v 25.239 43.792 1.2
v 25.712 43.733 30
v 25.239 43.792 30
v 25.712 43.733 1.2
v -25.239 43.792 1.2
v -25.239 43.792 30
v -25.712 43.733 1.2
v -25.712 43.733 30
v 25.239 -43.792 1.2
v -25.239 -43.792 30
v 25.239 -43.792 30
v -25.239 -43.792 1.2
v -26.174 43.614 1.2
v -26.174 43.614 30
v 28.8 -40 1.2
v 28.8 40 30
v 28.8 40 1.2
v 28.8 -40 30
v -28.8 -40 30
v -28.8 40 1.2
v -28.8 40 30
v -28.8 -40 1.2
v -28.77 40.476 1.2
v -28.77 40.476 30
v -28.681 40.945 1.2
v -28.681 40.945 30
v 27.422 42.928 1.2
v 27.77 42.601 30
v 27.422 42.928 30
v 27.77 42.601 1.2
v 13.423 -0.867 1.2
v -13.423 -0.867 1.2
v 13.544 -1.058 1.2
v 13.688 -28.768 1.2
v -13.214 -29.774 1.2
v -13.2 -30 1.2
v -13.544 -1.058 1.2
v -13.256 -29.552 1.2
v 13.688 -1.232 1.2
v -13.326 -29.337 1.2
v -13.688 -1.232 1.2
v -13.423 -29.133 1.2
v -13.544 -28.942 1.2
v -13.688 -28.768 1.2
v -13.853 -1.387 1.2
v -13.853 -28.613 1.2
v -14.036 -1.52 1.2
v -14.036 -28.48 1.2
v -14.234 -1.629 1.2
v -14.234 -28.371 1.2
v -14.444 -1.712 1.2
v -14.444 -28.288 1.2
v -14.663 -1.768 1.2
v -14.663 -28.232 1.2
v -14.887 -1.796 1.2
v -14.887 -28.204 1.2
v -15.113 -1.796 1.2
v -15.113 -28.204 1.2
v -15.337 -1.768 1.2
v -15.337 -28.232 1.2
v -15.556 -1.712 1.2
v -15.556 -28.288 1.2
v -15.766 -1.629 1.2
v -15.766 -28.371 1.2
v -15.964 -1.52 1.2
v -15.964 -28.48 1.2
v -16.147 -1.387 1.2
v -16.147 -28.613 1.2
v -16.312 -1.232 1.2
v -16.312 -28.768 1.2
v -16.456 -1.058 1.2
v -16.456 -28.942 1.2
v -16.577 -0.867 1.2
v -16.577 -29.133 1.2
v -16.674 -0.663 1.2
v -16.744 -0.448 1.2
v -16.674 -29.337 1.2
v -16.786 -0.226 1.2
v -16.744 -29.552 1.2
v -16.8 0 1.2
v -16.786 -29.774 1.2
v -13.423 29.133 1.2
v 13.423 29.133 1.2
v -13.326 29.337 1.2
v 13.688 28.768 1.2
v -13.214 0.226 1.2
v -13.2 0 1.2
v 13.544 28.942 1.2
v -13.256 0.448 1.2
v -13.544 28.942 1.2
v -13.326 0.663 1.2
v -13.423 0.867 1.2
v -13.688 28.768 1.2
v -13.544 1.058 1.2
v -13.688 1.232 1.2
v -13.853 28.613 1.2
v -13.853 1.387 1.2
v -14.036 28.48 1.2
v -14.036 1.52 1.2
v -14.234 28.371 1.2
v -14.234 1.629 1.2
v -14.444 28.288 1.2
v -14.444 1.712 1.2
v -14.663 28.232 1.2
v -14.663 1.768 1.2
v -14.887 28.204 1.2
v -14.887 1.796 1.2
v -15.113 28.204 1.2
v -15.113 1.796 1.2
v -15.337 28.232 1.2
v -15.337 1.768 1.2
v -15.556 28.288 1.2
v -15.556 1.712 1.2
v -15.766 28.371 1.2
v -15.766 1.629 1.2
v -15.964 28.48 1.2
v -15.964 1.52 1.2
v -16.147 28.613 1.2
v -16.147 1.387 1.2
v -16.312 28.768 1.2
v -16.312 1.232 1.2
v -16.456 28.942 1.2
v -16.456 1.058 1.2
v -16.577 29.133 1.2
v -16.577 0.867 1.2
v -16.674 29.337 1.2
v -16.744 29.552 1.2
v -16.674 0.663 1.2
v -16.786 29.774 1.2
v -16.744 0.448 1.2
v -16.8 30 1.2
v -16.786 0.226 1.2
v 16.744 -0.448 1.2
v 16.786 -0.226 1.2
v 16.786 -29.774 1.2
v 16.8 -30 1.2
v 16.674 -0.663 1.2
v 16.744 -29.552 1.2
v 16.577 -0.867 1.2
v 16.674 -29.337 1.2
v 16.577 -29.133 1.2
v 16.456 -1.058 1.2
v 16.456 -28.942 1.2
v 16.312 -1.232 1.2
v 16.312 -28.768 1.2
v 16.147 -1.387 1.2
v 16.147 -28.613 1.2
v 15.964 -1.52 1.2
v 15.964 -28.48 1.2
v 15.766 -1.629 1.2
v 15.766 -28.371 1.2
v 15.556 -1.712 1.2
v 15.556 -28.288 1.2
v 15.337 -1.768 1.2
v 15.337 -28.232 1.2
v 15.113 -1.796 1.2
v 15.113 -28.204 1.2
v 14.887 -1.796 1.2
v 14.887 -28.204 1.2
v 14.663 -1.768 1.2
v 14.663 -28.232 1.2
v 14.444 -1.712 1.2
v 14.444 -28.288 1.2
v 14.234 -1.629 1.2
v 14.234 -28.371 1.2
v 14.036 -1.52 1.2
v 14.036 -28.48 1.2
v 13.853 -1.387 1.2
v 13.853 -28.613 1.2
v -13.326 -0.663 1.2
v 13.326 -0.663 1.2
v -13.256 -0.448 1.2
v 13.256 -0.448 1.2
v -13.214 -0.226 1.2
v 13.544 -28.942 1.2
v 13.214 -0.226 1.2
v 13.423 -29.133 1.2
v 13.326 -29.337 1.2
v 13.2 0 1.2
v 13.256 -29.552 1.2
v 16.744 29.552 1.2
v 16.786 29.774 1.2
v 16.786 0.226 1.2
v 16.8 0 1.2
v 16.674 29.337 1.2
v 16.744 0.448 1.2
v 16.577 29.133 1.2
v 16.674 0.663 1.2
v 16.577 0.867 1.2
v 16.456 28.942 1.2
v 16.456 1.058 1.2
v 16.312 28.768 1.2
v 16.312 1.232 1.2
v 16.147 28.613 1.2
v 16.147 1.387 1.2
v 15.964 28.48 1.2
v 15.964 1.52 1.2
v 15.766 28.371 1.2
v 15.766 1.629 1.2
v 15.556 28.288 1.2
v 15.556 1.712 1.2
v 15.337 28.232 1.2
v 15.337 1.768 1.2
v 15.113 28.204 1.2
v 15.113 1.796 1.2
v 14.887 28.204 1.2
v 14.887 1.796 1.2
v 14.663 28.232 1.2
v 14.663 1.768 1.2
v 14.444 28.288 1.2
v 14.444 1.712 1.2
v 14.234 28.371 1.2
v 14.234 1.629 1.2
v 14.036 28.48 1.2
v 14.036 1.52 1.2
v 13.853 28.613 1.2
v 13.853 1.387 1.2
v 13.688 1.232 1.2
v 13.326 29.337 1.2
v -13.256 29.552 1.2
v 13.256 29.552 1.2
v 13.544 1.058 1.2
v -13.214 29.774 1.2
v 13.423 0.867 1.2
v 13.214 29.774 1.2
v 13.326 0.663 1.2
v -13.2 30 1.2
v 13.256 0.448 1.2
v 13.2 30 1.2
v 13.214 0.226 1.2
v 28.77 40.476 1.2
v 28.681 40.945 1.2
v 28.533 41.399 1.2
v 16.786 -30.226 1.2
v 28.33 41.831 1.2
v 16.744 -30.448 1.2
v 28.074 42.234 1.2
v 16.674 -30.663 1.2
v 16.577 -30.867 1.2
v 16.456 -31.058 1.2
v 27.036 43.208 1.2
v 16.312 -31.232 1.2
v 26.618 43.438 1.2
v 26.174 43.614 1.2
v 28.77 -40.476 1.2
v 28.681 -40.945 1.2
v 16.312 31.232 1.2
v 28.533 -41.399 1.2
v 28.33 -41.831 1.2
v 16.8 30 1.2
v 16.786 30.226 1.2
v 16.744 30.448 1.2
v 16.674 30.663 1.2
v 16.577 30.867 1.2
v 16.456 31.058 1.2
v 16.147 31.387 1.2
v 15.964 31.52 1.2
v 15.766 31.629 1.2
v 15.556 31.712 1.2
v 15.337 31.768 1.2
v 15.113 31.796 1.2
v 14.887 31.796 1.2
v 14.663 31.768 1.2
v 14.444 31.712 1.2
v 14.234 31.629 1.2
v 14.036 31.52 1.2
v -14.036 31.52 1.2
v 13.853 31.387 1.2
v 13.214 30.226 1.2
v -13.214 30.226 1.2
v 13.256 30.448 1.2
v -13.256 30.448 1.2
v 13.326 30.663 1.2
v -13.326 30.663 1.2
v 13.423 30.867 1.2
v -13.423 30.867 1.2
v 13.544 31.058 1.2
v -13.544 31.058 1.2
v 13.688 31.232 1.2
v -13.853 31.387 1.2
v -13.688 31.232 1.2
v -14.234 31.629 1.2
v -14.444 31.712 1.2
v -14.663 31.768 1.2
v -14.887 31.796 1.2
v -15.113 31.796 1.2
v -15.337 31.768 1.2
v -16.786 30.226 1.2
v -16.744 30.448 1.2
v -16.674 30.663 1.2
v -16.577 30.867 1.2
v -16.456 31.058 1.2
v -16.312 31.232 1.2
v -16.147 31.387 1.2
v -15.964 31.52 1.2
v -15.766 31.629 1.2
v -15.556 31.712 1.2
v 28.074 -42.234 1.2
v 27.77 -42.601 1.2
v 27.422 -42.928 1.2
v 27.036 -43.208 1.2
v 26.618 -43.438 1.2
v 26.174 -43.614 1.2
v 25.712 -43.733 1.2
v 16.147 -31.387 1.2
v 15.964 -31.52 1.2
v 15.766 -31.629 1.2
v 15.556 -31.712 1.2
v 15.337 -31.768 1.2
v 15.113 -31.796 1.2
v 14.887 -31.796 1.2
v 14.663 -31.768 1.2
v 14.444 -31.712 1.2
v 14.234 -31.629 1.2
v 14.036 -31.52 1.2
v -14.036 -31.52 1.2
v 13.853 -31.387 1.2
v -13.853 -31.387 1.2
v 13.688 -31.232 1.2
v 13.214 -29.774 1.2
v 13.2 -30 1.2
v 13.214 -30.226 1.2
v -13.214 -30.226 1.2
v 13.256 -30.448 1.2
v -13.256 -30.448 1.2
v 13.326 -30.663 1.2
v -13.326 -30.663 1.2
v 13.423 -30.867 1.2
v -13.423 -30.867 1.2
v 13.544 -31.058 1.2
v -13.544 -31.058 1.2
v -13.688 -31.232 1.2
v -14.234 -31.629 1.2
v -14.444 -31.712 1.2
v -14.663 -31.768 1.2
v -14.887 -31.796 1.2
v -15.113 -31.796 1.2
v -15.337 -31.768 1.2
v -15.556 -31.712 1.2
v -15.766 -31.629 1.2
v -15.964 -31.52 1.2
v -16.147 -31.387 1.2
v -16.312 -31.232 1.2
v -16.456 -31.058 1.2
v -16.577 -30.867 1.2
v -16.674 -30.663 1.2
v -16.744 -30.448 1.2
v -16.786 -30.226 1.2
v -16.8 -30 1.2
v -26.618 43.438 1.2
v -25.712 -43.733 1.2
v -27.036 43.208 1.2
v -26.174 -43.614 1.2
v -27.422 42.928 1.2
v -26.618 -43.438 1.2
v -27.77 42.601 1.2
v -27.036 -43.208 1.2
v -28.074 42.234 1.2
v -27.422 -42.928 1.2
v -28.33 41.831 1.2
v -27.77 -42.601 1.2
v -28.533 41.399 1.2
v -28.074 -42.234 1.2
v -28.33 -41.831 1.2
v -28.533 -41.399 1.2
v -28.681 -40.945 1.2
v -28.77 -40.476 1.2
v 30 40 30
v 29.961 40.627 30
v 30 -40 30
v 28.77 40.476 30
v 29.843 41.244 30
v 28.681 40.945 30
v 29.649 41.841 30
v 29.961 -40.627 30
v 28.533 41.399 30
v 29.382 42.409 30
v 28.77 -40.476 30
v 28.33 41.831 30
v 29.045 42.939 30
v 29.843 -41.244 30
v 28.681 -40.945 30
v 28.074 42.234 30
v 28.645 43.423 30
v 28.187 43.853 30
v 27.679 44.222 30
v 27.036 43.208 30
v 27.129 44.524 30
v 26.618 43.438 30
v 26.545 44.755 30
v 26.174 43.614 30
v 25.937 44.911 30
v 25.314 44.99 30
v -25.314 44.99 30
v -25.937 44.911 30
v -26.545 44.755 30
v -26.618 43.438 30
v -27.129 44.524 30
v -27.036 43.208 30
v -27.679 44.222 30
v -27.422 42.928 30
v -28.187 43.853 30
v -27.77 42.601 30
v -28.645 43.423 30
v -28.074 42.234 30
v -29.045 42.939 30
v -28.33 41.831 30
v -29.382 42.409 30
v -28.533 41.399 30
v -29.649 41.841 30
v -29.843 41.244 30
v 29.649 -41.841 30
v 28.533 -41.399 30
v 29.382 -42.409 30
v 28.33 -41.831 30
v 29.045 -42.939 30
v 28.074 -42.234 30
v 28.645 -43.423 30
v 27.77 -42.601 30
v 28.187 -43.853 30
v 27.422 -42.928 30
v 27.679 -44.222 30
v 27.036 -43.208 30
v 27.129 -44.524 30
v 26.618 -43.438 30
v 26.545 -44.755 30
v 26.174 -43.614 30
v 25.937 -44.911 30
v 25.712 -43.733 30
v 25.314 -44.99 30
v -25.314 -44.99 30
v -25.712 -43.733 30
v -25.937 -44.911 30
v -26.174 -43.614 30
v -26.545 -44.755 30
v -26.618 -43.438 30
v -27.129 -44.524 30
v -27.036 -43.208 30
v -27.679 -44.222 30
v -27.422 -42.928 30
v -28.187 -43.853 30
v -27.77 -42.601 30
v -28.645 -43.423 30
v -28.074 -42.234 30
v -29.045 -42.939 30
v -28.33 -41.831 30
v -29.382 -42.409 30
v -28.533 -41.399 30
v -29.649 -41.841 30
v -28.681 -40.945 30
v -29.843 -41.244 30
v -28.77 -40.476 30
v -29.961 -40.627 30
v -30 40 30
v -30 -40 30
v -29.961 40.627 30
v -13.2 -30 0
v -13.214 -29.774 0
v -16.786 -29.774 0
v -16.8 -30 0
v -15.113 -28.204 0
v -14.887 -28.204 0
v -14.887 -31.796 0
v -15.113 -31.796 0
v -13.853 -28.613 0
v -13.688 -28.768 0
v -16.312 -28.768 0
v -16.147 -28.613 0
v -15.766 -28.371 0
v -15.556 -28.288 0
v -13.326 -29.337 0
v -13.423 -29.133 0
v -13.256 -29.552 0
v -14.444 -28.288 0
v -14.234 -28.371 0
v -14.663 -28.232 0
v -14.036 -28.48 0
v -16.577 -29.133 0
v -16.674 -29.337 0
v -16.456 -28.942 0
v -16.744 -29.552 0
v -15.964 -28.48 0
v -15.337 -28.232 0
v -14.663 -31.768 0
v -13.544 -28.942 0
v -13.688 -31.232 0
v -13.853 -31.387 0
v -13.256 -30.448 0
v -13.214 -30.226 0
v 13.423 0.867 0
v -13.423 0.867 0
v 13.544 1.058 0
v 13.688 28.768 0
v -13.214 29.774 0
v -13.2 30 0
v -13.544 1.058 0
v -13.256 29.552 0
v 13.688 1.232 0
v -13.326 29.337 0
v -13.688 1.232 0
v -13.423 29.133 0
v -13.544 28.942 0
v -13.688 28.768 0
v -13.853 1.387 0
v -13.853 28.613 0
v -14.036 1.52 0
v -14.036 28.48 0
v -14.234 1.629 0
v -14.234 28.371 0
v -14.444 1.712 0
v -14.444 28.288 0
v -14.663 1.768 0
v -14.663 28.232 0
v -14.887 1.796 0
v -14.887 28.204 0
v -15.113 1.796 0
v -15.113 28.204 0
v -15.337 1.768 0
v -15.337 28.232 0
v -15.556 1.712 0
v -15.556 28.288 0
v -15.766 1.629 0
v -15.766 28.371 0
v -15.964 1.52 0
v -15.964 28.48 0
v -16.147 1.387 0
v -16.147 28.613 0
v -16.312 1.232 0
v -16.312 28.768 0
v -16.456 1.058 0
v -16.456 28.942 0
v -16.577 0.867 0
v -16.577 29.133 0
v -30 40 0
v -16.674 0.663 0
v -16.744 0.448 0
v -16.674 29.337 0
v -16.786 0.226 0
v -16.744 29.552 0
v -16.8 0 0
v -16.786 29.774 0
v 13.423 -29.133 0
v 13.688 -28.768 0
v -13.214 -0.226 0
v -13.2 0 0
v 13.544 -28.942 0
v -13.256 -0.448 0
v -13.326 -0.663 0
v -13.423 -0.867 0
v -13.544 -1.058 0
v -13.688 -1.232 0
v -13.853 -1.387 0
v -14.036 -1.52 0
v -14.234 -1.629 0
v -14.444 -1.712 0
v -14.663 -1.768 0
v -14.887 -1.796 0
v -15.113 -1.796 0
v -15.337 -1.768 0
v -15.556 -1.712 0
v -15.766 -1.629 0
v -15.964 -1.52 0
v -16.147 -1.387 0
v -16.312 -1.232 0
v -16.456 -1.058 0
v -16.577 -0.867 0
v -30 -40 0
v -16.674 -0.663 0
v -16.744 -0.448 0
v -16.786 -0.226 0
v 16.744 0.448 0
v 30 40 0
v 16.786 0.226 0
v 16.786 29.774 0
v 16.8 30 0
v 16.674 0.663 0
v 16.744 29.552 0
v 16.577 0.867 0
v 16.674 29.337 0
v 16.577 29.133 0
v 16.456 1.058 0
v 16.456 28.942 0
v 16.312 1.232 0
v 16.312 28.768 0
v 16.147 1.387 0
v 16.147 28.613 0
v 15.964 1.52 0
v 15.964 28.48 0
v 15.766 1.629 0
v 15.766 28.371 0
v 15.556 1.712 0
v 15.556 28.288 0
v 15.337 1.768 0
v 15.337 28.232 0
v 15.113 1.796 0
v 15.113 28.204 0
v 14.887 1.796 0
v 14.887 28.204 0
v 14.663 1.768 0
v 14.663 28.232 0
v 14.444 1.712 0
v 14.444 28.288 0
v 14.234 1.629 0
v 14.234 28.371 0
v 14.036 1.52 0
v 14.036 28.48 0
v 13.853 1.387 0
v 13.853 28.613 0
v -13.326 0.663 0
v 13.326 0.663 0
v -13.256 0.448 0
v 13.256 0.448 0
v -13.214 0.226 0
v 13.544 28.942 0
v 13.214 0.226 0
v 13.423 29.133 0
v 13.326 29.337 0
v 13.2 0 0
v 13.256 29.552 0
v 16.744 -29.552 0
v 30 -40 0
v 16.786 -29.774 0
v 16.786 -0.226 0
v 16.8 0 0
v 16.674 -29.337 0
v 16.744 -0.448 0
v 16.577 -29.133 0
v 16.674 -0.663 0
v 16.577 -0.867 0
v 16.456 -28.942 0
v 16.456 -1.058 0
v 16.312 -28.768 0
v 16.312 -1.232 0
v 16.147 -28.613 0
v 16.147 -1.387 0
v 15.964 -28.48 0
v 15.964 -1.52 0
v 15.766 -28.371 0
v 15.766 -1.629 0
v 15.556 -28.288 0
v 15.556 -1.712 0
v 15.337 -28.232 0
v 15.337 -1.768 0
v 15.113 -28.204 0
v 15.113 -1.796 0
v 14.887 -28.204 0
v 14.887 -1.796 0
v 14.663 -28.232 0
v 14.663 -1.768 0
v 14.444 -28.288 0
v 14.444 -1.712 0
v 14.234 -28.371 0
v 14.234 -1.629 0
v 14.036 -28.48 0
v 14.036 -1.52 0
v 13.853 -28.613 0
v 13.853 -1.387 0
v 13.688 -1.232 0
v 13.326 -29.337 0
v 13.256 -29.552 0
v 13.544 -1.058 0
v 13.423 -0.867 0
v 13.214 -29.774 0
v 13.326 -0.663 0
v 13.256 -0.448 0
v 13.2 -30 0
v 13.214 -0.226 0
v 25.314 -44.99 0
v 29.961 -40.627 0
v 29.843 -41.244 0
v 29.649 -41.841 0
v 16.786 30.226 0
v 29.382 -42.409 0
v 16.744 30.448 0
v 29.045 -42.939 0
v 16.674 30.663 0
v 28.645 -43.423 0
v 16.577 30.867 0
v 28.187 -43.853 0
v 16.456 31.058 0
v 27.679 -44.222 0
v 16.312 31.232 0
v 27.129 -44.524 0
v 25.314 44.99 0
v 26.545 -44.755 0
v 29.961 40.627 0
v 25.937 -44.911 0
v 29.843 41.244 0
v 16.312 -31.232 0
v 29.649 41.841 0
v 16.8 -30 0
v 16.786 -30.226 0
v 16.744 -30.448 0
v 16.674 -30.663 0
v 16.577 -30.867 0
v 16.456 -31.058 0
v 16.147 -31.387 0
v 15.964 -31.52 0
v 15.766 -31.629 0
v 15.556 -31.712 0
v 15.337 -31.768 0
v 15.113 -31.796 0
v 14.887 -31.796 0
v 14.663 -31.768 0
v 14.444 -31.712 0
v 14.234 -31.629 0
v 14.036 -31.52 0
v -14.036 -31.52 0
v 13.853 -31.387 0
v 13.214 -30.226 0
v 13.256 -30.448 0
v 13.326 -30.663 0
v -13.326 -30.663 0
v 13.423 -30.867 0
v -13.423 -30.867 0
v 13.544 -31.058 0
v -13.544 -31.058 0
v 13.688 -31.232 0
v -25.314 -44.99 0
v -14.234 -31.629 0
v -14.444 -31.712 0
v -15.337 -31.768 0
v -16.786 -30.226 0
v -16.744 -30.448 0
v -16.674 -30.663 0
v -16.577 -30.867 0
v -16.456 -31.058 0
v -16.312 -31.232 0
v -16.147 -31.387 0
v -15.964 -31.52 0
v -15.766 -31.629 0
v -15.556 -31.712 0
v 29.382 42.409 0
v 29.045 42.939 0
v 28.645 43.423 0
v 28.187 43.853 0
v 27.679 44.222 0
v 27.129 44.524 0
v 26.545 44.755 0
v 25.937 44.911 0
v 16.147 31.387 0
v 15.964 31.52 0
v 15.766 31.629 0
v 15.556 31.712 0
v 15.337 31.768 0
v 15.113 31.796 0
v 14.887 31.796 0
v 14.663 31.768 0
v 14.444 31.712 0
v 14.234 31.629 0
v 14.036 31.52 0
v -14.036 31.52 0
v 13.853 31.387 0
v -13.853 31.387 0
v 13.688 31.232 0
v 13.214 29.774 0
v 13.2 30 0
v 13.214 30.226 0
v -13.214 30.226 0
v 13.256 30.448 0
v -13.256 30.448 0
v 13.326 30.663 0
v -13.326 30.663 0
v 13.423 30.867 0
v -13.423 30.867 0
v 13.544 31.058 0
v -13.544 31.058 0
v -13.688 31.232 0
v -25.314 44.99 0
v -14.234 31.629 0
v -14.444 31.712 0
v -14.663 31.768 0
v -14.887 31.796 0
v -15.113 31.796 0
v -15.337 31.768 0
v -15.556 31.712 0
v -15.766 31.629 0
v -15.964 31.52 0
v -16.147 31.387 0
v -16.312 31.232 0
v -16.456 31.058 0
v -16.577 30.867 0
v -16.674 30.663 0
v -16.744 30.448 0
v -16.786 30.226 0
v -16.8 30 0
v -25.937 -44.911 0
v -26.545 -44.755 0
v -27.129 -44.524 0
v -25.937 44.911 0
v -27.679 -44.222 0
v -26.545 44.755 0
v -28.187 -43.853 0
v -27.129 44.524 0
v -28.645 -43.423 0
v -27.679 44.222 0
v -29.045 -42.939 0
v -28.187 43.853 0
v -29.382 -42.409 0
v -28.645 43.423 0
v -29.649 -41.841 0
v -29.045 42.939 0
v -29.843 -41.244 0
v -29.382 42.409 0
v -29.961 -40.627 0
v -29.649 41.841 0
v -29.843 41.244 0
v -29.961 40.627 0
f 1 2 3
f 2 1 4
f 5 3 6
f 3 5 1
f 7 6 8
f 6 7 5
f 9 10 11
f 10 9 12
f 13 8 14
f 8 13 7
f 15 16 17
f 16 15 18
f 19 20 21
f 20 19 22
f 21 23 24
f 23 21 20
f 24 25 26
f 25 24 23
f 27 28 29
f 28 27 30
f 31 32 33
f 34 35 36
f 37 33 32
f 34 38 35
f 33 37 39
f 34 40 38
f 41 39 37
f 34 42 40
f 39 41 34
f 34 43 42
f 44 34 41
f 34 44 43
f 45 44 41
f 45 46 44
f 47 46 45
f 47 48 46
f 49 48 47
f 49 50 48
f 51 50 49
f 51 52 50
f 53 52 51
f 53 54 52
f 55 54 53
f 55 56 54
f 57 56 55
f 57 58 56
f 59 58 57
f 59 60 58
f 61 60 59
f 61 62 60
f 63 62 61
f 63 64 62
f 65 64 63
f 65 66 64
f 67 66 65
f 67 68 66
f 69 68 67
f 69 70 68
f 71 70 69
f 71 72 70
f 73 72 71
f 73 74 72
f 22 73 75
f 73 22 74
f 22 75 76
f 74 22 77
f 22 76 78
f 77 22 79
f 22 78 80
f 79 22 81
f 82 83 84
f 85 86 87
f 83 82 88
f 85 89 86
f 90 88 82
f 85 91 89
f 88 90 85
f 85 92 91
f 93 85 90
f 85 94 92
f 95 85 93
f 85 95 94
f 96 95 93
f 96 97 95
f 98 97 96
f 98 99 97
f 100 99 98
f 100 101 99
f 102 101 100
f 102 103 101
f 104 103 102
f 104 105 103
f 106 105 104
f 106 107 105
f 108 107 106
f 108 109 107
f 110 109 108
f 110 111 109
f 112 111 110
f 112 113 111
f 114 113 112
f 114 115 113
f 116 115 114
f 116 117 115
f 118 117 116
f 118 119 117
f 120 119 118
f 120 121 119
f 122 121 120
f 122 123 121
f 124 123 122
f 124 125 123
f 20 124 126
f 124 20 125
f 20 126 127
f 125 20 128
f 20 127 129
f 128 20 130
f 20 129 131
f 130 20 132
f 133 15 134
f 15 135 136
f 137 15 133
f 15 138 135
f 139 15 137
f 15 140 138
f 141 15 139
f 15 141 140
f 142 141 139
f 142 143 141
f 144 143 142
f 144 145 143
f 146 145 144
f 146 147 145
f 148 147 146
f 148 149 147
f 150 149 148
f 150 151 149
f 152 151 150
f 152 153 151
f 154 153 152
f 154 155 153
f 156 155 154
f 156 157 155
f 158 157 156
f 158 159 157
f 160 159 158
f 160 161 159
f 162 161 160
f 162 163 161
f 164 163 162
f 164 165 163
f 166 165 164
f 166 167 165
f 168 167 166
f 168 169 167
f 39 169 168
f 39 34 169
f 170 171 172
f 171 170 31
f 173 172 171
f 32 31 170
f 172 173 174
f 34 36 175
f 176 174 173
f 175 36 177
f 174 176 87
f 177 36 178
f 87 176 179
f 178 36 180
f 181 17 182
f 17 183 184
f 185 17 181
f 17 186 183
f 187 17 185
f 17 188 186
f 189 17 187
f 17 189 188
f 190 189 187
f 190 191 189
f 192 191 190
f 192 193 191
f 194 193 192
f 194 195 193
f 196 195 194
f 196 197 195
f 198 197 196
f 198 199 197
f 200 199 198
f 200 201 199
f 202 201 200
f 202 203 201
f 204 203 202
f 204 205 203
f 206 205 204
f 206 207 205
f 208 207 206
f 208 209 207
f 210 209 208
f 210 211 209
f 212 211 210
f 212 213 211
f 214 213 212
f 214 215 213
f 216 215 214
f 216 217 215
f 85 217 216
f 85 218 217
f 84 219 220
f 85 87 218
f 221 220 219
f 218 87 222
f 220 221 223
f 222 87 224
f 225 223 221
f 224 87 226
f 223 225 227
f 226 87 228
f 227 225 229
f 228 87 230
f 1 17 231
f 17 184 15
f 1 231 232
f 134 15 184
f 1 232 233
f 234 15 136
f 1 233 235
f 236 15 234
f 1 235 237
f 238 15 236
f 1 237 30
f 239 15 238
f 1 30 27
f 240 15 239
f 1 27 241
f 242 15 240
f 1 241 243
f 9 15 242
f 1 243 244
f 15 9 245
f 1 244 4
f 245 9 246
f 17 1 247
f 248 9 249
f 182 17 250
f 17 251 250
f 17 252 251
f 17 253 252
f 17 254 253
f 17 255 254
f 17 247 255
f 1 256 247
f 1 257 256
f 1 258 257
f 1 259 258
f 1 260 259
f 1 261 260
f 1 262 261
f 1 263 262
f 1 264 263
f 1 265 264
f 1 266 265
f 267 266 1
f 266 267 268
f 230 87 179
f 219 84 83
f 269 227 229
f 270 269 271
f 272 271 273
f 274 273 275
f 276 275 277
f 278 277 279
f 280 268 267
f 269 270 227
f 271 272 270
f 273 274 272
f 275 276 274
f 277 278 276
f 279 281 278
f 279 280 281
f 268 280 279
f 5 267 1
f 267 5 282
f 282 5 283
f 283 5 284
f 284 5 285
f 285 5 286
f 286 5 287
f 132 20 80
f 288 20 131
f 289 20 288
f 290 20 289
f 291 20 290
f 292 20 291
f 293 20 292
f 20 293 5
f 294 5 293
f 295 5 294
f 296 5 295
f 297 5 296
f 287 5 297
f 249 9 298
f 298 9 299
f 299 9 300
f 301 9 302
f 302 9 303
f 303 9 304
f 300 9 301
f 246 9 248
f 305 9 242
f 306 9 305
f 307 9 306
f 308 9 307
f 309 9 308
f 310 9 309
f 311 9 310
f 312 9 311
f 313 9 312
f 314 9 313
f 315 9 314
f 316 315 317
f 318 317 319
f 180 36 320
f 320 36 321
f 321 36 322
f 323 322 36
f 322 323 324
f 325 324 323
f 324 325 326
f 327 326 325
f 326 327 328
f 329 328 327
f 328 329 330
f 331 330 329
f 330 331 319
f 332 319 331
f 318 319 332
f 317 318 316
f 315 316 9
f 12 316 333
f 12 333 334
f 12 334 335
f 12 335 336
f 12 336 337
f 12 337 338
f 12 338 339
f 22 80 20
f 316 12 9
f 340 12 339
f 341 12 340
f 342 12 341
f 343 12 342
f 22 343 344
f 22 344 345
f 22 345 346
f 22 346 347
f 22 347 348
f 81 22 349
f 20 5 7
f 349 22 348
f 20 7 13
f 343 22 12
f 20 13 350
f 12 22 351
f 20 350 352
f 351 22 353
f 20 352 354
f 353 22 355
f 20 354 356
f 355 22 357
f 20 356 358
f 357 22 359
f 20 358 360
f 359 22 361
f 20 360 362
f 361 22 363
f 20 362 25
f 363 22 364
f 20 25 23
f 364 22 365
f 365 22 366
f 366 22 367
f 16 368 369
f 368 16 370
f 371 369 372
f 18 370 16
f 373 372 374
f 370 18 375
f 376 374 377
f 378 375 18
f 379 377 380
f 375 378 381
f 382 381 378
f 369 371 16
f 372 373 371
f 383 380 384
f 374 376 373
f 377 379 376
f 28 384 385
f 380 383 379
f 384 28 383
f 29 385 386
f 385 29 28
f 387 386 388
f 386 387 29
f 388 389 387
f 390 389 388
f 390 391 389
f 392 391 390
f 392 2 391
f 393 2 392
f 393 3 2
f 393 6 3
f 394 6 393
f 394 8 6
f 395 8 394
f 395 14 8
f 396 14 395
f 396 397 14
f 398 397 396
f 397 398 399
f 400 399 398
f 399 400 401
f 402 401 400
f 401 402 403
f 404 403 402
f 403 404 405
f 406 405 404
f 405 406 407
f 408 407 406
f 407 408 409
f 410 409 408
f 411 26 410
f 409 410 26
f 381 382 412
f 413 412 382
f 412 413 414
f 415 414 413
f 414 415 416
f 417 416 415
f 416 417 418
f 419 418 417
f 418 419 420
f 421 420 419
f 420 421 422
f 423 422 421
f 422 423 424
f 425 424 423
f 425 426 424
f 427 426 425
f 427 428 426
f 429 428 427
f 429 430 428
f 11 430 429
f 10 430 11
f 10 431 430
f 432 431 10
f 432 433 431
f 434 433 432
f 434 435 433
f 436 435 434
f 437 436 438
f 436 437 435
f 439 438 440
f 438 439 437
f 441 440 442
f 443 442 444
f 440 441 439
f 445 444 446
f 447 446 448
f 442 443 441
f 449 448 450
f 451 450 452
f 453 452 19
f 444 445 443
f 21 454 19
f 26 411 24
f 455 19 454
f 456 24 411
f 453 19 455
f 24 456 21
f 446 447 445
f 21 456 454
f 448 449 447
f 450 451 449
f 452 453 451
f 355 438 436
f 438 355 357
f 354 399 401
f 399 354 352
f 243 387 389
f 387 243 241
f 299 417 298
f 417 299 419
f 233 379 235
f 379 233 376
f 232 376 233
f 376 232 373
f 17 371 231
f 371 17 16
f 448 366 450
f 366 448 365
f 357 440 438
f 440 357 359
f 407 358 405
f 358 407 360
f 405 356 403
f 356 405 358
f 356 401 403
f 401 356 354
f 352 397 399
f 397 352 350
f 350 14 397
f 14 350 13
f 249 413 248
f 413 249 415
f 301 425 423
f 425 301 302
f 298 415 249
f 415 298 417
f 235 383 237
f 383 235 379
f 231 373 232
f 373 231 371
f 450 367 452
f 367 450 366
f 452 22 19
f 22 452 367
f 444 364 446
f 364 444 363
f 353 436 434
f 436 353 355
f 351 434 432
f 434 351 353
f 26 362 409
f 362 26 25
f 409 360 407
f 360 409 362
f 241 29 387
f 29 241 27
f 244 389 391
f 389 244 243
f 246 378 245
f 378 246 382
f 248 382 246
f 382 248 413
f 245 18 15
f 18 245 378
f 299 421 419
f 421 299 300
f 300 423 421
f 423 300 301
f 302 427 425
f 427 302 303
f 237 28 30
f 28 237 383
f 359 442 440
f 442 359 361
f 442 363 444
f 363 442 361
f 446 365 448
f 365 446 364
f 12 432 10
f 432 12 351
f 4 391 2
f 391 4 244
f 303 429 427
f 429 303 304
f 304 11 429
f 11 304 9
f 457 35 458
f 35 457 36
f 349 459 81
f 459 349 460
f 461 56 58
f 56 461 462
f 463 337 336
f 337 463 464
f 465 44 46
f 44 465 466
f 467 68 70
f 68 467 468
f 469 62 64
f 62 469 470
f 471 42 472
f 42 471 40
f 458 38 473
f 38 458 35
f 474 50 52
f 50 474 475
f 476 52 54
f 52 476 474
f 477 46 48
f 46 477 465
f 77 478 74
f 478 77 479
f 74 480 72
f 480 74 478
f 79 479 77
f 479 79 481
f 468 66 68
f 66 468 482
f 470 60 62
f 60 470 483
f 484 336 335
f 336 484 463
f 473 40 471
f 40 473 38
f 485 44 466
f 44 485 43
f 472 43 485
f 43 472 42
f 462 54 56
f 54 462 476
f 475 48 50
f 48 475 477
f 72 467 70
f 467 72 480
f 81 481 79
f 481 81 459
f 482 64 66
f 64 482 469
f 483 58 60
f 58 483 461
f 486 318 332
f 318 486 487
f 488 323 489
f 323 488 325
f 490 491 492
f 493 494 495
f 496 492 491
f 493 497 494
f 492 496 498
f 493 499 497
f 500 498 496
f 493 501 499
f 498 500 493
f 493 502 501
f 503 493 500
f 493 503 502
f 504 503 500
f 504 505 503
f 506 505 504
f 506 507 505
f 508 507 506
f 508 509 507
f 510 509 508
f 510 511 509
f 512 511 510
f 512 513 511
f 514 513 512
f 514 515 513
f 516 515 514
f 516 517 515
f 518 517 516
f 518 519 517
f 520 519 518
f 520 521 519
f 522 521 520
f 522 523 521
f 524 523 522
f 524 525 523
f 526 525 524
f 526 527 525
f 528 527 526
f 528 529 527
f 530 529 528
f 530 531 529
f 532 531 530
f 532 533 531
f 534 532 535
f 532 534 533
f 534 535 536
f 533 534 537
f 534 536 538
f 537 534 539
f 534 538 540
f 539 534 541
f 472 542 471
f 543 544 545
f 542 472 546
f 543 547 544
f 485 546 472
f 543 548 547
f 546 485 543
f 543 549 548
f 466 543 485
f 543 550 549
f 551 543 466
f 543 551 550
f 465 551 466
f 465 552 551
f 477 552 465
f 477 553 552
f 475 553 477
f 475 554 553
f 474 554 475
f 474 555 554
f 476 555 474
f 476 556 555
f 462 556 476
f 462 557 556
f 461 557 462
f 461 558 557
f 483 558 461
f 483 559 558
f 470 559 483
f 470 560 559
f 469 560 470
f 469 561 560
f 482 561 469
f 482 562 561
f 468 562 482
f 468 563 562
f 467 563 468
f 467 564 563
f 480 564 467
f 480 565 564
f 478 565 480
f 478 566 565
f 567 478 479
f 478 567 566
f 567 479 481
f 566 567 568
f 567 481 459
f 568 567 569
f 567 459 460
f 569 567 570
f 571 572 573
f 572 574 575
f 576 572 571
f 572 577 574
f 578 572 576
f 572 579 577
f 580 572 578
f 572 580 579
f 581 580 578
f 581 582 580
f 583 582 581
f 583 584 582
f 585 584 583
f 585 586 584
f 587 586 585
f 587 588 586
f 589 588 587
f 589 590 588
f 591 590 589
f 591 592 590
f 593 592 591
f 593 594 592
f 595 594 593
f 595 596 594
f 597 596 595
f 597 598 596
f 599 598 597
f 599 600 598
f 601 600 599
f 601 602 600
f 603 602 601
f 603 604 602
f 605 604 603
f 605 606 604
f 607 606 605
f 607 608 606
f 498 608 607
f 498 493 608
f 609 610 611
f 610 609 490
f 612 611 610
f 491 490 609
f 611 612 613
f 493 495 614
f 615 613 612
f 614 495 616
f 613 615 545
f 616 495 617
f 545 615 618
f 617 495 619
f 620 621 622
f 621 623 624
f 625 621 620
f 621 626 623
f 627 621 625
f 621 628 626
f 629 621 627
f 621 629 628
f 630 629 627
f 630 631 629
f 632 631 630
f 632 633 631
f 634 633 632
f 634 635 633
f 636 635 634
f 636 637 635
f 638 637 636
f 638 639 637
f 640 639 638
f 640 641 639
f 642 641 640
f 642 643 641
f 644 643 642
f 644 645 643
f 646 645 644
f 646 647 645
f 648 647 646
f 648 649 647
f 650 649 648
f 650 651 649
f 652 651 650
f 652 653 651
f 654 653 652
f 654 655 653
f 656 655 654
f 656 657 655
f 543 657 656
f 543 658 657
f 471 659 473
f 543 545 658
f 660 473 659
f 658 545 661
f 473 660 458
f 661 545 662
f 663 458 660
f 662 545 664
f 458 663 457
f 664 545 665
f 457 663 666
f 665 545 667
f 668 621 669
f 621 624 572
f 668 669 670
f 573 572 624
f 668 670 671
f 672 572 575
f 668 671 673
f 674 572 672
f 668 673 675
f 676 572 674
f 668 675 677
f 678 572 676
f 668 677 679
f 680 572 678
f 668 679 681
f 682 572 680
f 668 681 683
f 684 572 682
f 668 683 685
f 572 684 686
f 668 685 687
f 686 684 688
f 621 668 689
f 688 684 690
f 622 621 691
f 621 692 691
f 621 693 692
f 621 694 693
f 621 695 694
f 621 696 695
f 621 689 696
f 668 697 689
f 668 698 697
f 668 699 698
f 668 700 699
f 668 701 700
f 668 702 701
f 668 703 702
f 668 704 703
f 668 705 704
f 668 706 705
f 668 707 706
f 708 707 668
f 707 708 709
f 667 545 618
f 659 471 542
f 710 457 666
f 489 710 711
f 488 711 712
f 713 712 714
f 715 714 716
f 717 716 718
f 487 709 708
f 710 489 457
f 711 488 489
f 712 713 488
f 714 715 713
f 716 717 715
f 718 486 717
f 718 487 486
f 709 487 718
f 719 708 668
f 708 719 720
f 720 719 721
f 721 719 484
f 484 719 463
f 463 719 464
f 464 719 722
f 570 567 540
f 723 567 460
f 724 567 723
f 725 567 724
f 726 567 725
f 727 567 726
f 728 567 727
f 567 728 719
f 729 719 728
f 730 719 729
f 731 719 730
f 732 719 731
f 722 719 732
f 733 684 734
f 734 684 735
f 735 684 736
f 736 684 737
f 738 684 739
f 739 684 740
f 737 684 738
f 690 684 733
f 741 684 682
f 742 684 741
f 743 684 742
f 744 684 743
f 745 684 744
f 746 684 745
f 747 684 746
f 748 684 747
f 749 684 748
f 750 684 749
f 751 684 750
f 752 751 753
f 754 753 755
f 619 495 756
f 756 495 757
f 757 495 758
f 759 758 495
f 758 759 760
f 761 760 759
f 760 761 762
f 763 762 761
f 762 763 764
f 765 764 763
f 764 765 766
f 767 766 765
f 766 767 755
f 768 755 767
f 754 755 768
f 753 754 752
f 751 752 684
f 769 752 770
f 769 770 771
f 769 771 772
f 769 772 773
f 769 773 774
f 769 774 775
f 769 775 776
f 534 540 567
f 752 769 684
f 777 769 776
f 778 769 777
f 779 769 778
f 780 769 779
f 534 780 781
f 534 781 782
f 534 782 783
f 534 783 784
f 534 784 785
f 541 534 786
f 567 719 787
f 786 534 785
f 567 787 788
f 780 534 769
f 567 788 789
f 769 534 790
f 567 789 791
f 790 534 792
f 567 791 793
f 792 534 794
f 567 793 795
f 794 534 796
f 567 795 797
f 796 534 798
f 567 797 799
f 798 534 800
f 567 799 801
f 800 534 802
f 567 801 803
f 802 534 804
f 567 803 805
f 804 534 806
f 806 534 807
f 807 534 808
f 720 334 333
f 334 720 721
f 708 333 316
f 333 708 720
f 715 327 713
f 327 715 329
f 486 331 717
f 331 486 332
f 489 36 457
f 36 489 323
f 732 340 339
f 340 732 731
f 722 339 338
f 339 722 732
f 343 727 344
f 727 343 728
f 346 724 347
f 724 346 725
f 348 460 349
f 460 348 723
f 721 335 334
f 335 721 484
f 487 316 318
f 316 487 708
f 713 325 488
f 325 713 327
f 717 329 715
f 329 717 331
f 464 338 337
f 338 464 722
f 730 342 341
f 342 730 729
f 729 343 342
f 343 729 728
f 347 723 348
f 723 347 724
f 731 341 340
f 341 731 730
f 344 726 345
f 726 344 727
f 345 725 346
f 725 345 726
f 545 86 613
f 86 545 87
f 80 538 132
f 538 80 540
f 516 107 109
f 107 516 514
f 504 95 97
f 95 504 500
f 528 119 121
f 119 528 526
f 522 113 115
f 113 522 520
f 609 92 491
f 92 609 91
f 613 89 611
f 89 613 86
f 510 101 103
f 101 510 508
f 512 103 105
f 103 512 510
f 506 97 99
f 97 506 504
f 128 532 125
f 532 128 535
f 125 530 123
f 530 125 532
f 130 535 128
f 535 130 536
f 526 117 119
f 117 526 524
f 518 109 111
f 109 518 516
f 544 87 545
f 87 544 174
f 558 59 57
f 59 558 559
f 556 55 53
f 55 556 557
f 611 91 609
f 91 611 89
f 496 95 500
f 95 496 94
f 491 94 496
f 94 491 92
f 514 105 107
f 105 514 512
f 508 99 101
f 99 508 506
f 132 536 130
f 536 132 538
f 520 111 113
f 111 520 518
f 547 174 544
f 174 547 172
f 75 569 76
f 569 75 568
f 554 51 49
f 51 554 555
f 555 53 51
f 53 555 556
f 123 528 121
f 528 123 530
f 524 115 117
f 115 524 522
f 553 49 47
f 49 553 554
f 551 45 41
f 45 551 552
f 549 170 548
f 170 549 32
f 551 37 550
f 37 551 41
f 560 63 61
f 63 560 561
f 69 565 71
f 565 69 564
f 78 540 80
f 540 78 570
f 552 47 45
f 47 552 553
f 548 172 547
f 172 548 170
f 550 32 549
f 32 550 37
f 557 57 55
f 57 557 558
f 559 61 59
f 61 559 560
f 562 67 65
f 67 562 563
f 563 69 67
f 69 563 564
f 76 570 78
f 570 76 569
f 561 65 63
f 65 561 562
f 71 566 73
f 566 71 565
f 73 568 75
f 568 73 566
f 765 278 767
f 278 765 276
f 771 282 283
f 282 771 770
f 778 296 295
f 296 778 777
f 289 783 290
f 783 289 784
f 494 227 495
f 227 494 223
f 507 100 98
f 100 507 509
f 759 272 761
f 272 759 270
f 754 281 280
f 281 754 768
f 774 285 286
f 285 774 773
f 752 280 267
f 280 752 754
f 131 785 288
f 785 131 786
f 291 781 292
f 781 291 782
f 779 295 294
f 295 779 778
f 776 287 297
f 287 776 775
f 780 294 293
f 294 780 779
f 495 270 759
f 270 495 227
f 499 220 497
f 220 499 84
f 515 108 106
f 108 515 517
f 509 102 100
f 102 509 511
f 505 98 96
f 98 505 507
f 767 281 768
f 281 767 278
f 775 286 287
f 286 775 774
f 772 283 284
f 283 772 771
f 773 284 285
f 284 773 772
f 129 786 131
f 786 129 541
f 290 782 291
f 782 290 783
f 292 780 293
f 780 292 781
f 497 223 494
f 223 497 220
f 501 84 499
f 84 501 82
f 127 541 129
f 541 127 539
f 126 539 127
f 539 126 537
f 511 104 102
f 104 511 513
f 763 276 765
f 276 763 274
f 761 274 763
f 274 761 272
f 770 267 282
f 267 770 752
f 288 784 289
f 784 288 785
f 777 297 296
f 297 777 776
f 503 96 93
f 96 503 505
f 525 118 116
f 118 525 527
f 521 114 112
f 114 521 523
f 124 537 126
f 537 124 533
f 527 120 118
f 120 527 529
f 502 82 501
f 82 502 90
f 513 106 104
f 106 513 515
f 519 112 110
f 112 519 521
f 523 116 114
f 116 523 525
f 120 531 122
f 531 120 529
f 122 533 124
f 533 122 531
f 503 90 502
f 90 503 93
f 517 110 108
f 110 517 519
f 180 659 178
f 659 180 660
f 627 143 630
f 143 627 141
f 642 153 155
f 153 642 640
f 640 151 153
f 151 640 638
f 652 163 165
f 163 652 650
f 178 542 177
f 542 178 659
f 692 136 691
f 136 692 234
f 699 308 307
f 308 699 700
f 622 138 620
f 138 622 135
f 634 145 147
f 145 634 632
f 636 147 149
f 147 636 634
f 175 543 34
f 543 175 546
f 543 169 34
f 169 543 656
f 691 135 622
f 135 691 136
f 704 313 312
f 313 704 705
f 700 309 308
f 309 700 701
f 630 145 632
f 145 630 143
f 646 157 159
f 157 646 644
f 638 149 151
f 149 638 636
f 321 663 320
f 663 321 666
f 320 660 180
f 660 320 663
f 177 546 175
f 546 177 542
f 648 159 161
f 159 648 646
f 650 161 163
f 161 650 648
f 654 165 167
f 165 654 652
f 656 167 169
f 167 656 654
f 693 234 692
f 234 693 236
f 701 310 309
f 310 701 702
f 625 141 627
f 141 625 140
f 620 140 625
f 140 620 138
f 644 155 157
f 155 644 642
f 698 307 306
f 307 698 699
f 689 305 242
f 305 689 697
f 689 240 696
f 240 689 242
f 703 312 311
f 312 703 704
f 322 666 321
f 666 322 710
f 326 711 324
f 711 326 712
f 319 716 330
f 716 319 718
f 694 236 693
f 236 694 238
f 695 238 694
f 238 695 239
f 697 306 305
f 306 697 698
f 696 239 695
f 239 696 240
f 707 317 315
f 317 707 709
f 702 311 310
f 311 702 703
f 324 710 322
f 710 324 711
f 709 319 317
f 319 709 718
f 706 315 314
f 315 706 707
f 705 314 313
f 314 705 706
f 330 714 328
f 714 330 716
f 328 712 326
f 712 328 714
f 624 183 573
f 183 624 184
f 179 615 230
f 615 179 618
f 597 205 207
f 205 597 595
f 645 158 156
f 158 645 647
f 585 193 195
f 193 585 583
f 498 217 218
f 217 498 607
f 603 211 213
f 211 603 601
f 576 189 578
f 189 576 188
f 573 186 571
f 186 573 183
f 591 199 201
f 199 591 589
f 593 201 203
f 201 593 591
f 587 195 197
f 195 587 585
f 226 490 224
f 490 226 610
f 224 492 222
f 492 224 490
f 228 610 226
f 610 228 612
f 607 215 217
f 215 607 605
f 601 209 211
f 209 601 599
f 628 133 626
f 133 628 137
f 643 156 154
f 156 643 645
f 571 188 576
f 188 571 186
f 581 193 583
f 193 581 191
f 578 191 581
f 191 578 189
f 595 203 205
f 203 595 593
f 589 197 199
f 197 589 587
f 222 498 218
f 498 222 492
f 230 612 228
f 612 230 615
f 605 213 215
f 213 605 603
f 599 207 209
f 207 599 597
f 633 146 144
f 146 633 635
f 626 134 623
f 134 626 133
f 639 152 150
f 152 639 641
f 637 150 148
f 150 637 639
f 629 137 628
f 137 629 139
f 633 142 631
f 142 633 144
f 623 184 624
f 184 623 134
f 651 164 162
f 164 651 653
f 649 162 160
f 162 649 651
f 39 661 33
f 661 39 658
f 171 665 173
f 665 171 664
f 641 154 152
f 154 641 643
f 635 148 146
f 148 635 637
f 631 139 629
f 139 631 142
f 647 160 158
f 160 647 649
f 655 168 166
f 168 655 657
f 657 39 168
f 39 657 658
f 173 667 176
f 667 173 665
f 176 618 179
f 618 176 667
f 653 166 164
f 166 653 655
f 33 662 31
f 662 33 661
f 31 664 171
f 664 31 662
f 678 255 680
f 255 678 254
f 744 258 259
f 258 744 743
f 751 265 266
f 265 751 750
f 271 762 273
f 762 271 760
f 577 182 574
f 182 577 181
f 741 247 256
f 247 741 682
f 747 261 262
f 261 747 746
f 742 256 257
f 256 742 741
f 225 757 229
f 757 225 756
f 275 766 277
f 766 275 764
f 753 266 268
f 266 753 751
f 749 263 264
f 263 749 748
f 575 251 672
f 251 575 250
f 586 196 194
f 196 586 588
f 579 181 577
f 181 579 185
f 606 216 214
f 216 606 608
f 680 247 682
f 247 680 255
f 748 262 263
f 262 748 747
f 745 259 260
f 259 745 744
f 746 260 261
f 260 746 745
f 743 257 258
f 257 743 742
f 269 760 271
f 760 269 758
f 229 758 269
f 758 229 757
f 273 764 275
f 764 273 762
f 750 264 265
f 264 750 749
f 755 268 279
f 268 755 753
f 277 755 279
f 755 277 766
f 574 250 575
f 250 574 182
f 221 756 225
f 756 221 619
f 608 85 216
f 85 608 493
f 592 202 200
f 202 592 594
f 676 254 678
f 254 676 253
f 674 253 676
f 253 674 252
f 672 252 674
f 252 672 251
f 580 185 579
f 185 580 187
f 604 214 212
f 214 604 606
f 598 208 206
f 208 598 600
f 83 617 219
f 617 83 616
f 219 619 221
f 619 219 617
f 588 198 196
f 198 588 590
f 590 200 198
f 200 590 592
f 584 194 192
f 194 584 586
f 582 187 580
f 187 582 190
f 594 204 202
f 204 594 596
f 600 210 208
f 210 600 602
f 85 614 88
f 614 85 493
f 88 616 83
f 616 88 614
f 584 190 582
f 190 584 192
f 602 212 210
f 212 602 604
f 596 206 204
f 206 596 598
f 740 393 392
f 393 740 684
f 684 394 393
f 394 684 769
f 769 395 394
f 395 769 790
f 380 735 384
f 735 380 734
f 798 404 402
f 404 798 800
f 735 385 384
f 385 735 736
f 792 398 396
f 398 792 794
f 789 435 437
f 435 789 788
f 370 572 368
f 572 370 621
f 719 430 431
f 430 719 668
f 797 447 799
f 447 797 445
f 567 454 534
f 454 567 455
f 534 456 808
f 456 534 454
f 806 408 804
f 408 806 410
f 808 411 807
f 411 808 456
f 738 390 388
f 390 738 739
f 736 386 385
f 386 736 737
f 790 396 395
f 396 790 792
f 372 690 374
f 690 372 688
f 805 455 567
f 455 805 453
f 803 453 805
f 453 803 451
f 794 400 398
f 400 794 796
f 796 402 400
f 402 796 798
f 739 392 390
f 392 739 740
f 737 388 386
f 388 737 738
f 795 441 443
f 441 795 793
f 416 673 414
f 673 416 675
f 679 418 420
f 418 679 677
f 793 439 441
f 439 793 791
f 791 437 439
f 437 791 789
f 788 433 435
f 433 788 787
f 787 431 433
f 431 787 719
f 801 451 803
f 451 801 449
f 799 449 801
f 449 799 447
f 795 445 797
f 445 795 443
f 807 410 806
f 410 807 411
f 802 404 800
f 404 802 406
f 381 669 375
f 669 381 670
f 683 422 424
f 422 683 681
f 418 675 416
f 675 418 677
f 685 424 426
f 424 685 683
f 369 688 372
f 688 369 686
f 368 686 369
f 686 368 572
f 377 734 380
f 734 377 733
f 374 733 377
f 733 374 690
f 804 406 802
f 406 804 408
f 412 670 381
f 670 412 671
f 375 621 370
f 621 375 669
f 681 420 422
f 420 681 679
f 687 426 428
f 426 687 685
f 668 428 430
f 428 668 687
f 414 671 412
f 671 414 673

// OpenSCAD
$fn = 50;


difference() {
	union() {
		hull() {
			translate(v = [-25.0000000000, 40.0000000000, 0]) {
				cylinder(h = 30, r = 5);
			}
			translate(v = [25.0000000000, 40.0000000000, 0]) {
				cylinder(h = 30, r = 5);
			}
			translate(v = [-25.0000000000, -40.0000000000, 0]) {
				cylinder(h = 30, r = 5);
			}
			translate(v = [25.0000000000, -40.0000000000, 0]) {
				cylinder(h = 30, r = 5);
			}
		}
	}
	union() {
		translate(v = [0, 0, 1.2000000000]) {
			hull() {
				translate(v = [-25.0000000000, 40.0000000000, 0]) {
					cylinder(h = 28.8000000000, r = 3.8000000000);
				}
				translate(v = [25.0000000000, 40.0000000000, 0]) {
					cylinder(h = 28.8000000000, r = 3.8000000000);
				}
				translate(v = [-25.0000000000, -40.0000000000, 0]) {
					cylinder(h = 28.8000000000, r = 3.8000000000);
				}
				translate(v = [25.0000000000, -40.0000000000, 0]) {
					cylinder(h = 28.8000000000, r = 3.8000000000);
				}
			}
		}
		#translate(v = [-15.0000000000, -30.0000000000, 0]) {
			cylinder(h = 1.2000000000, r = 1.8000000000);
		}
		#translate(v = [-15.0000000000, 0.0000000000, 0]) {
			cylinder(h = 1.2000000000, r = 1.8000000000);
		}
		#translate(v = [-15.0000000000, 30.0000000000, 0]) {
			cylinder(h = 1.2000000000, r = 1.8000000000);
		}
		#translate(v = [15.0000000000, -30.0000000000, 0]) {
			cylinder(h = 1.2000000000, r = 1.8000000000);
		}
		#translate(v = [15.0000000000, 0.0000000000, 0]) {
			cylinder(h = 1.2000000000, r = 1.8000000000);
		}
		#translate(v = [15.0000000000, 30.0000000000, 0]) {
			cylinder(h = 1.2000000000, r = 1.8000000000);
		}
	}
}
